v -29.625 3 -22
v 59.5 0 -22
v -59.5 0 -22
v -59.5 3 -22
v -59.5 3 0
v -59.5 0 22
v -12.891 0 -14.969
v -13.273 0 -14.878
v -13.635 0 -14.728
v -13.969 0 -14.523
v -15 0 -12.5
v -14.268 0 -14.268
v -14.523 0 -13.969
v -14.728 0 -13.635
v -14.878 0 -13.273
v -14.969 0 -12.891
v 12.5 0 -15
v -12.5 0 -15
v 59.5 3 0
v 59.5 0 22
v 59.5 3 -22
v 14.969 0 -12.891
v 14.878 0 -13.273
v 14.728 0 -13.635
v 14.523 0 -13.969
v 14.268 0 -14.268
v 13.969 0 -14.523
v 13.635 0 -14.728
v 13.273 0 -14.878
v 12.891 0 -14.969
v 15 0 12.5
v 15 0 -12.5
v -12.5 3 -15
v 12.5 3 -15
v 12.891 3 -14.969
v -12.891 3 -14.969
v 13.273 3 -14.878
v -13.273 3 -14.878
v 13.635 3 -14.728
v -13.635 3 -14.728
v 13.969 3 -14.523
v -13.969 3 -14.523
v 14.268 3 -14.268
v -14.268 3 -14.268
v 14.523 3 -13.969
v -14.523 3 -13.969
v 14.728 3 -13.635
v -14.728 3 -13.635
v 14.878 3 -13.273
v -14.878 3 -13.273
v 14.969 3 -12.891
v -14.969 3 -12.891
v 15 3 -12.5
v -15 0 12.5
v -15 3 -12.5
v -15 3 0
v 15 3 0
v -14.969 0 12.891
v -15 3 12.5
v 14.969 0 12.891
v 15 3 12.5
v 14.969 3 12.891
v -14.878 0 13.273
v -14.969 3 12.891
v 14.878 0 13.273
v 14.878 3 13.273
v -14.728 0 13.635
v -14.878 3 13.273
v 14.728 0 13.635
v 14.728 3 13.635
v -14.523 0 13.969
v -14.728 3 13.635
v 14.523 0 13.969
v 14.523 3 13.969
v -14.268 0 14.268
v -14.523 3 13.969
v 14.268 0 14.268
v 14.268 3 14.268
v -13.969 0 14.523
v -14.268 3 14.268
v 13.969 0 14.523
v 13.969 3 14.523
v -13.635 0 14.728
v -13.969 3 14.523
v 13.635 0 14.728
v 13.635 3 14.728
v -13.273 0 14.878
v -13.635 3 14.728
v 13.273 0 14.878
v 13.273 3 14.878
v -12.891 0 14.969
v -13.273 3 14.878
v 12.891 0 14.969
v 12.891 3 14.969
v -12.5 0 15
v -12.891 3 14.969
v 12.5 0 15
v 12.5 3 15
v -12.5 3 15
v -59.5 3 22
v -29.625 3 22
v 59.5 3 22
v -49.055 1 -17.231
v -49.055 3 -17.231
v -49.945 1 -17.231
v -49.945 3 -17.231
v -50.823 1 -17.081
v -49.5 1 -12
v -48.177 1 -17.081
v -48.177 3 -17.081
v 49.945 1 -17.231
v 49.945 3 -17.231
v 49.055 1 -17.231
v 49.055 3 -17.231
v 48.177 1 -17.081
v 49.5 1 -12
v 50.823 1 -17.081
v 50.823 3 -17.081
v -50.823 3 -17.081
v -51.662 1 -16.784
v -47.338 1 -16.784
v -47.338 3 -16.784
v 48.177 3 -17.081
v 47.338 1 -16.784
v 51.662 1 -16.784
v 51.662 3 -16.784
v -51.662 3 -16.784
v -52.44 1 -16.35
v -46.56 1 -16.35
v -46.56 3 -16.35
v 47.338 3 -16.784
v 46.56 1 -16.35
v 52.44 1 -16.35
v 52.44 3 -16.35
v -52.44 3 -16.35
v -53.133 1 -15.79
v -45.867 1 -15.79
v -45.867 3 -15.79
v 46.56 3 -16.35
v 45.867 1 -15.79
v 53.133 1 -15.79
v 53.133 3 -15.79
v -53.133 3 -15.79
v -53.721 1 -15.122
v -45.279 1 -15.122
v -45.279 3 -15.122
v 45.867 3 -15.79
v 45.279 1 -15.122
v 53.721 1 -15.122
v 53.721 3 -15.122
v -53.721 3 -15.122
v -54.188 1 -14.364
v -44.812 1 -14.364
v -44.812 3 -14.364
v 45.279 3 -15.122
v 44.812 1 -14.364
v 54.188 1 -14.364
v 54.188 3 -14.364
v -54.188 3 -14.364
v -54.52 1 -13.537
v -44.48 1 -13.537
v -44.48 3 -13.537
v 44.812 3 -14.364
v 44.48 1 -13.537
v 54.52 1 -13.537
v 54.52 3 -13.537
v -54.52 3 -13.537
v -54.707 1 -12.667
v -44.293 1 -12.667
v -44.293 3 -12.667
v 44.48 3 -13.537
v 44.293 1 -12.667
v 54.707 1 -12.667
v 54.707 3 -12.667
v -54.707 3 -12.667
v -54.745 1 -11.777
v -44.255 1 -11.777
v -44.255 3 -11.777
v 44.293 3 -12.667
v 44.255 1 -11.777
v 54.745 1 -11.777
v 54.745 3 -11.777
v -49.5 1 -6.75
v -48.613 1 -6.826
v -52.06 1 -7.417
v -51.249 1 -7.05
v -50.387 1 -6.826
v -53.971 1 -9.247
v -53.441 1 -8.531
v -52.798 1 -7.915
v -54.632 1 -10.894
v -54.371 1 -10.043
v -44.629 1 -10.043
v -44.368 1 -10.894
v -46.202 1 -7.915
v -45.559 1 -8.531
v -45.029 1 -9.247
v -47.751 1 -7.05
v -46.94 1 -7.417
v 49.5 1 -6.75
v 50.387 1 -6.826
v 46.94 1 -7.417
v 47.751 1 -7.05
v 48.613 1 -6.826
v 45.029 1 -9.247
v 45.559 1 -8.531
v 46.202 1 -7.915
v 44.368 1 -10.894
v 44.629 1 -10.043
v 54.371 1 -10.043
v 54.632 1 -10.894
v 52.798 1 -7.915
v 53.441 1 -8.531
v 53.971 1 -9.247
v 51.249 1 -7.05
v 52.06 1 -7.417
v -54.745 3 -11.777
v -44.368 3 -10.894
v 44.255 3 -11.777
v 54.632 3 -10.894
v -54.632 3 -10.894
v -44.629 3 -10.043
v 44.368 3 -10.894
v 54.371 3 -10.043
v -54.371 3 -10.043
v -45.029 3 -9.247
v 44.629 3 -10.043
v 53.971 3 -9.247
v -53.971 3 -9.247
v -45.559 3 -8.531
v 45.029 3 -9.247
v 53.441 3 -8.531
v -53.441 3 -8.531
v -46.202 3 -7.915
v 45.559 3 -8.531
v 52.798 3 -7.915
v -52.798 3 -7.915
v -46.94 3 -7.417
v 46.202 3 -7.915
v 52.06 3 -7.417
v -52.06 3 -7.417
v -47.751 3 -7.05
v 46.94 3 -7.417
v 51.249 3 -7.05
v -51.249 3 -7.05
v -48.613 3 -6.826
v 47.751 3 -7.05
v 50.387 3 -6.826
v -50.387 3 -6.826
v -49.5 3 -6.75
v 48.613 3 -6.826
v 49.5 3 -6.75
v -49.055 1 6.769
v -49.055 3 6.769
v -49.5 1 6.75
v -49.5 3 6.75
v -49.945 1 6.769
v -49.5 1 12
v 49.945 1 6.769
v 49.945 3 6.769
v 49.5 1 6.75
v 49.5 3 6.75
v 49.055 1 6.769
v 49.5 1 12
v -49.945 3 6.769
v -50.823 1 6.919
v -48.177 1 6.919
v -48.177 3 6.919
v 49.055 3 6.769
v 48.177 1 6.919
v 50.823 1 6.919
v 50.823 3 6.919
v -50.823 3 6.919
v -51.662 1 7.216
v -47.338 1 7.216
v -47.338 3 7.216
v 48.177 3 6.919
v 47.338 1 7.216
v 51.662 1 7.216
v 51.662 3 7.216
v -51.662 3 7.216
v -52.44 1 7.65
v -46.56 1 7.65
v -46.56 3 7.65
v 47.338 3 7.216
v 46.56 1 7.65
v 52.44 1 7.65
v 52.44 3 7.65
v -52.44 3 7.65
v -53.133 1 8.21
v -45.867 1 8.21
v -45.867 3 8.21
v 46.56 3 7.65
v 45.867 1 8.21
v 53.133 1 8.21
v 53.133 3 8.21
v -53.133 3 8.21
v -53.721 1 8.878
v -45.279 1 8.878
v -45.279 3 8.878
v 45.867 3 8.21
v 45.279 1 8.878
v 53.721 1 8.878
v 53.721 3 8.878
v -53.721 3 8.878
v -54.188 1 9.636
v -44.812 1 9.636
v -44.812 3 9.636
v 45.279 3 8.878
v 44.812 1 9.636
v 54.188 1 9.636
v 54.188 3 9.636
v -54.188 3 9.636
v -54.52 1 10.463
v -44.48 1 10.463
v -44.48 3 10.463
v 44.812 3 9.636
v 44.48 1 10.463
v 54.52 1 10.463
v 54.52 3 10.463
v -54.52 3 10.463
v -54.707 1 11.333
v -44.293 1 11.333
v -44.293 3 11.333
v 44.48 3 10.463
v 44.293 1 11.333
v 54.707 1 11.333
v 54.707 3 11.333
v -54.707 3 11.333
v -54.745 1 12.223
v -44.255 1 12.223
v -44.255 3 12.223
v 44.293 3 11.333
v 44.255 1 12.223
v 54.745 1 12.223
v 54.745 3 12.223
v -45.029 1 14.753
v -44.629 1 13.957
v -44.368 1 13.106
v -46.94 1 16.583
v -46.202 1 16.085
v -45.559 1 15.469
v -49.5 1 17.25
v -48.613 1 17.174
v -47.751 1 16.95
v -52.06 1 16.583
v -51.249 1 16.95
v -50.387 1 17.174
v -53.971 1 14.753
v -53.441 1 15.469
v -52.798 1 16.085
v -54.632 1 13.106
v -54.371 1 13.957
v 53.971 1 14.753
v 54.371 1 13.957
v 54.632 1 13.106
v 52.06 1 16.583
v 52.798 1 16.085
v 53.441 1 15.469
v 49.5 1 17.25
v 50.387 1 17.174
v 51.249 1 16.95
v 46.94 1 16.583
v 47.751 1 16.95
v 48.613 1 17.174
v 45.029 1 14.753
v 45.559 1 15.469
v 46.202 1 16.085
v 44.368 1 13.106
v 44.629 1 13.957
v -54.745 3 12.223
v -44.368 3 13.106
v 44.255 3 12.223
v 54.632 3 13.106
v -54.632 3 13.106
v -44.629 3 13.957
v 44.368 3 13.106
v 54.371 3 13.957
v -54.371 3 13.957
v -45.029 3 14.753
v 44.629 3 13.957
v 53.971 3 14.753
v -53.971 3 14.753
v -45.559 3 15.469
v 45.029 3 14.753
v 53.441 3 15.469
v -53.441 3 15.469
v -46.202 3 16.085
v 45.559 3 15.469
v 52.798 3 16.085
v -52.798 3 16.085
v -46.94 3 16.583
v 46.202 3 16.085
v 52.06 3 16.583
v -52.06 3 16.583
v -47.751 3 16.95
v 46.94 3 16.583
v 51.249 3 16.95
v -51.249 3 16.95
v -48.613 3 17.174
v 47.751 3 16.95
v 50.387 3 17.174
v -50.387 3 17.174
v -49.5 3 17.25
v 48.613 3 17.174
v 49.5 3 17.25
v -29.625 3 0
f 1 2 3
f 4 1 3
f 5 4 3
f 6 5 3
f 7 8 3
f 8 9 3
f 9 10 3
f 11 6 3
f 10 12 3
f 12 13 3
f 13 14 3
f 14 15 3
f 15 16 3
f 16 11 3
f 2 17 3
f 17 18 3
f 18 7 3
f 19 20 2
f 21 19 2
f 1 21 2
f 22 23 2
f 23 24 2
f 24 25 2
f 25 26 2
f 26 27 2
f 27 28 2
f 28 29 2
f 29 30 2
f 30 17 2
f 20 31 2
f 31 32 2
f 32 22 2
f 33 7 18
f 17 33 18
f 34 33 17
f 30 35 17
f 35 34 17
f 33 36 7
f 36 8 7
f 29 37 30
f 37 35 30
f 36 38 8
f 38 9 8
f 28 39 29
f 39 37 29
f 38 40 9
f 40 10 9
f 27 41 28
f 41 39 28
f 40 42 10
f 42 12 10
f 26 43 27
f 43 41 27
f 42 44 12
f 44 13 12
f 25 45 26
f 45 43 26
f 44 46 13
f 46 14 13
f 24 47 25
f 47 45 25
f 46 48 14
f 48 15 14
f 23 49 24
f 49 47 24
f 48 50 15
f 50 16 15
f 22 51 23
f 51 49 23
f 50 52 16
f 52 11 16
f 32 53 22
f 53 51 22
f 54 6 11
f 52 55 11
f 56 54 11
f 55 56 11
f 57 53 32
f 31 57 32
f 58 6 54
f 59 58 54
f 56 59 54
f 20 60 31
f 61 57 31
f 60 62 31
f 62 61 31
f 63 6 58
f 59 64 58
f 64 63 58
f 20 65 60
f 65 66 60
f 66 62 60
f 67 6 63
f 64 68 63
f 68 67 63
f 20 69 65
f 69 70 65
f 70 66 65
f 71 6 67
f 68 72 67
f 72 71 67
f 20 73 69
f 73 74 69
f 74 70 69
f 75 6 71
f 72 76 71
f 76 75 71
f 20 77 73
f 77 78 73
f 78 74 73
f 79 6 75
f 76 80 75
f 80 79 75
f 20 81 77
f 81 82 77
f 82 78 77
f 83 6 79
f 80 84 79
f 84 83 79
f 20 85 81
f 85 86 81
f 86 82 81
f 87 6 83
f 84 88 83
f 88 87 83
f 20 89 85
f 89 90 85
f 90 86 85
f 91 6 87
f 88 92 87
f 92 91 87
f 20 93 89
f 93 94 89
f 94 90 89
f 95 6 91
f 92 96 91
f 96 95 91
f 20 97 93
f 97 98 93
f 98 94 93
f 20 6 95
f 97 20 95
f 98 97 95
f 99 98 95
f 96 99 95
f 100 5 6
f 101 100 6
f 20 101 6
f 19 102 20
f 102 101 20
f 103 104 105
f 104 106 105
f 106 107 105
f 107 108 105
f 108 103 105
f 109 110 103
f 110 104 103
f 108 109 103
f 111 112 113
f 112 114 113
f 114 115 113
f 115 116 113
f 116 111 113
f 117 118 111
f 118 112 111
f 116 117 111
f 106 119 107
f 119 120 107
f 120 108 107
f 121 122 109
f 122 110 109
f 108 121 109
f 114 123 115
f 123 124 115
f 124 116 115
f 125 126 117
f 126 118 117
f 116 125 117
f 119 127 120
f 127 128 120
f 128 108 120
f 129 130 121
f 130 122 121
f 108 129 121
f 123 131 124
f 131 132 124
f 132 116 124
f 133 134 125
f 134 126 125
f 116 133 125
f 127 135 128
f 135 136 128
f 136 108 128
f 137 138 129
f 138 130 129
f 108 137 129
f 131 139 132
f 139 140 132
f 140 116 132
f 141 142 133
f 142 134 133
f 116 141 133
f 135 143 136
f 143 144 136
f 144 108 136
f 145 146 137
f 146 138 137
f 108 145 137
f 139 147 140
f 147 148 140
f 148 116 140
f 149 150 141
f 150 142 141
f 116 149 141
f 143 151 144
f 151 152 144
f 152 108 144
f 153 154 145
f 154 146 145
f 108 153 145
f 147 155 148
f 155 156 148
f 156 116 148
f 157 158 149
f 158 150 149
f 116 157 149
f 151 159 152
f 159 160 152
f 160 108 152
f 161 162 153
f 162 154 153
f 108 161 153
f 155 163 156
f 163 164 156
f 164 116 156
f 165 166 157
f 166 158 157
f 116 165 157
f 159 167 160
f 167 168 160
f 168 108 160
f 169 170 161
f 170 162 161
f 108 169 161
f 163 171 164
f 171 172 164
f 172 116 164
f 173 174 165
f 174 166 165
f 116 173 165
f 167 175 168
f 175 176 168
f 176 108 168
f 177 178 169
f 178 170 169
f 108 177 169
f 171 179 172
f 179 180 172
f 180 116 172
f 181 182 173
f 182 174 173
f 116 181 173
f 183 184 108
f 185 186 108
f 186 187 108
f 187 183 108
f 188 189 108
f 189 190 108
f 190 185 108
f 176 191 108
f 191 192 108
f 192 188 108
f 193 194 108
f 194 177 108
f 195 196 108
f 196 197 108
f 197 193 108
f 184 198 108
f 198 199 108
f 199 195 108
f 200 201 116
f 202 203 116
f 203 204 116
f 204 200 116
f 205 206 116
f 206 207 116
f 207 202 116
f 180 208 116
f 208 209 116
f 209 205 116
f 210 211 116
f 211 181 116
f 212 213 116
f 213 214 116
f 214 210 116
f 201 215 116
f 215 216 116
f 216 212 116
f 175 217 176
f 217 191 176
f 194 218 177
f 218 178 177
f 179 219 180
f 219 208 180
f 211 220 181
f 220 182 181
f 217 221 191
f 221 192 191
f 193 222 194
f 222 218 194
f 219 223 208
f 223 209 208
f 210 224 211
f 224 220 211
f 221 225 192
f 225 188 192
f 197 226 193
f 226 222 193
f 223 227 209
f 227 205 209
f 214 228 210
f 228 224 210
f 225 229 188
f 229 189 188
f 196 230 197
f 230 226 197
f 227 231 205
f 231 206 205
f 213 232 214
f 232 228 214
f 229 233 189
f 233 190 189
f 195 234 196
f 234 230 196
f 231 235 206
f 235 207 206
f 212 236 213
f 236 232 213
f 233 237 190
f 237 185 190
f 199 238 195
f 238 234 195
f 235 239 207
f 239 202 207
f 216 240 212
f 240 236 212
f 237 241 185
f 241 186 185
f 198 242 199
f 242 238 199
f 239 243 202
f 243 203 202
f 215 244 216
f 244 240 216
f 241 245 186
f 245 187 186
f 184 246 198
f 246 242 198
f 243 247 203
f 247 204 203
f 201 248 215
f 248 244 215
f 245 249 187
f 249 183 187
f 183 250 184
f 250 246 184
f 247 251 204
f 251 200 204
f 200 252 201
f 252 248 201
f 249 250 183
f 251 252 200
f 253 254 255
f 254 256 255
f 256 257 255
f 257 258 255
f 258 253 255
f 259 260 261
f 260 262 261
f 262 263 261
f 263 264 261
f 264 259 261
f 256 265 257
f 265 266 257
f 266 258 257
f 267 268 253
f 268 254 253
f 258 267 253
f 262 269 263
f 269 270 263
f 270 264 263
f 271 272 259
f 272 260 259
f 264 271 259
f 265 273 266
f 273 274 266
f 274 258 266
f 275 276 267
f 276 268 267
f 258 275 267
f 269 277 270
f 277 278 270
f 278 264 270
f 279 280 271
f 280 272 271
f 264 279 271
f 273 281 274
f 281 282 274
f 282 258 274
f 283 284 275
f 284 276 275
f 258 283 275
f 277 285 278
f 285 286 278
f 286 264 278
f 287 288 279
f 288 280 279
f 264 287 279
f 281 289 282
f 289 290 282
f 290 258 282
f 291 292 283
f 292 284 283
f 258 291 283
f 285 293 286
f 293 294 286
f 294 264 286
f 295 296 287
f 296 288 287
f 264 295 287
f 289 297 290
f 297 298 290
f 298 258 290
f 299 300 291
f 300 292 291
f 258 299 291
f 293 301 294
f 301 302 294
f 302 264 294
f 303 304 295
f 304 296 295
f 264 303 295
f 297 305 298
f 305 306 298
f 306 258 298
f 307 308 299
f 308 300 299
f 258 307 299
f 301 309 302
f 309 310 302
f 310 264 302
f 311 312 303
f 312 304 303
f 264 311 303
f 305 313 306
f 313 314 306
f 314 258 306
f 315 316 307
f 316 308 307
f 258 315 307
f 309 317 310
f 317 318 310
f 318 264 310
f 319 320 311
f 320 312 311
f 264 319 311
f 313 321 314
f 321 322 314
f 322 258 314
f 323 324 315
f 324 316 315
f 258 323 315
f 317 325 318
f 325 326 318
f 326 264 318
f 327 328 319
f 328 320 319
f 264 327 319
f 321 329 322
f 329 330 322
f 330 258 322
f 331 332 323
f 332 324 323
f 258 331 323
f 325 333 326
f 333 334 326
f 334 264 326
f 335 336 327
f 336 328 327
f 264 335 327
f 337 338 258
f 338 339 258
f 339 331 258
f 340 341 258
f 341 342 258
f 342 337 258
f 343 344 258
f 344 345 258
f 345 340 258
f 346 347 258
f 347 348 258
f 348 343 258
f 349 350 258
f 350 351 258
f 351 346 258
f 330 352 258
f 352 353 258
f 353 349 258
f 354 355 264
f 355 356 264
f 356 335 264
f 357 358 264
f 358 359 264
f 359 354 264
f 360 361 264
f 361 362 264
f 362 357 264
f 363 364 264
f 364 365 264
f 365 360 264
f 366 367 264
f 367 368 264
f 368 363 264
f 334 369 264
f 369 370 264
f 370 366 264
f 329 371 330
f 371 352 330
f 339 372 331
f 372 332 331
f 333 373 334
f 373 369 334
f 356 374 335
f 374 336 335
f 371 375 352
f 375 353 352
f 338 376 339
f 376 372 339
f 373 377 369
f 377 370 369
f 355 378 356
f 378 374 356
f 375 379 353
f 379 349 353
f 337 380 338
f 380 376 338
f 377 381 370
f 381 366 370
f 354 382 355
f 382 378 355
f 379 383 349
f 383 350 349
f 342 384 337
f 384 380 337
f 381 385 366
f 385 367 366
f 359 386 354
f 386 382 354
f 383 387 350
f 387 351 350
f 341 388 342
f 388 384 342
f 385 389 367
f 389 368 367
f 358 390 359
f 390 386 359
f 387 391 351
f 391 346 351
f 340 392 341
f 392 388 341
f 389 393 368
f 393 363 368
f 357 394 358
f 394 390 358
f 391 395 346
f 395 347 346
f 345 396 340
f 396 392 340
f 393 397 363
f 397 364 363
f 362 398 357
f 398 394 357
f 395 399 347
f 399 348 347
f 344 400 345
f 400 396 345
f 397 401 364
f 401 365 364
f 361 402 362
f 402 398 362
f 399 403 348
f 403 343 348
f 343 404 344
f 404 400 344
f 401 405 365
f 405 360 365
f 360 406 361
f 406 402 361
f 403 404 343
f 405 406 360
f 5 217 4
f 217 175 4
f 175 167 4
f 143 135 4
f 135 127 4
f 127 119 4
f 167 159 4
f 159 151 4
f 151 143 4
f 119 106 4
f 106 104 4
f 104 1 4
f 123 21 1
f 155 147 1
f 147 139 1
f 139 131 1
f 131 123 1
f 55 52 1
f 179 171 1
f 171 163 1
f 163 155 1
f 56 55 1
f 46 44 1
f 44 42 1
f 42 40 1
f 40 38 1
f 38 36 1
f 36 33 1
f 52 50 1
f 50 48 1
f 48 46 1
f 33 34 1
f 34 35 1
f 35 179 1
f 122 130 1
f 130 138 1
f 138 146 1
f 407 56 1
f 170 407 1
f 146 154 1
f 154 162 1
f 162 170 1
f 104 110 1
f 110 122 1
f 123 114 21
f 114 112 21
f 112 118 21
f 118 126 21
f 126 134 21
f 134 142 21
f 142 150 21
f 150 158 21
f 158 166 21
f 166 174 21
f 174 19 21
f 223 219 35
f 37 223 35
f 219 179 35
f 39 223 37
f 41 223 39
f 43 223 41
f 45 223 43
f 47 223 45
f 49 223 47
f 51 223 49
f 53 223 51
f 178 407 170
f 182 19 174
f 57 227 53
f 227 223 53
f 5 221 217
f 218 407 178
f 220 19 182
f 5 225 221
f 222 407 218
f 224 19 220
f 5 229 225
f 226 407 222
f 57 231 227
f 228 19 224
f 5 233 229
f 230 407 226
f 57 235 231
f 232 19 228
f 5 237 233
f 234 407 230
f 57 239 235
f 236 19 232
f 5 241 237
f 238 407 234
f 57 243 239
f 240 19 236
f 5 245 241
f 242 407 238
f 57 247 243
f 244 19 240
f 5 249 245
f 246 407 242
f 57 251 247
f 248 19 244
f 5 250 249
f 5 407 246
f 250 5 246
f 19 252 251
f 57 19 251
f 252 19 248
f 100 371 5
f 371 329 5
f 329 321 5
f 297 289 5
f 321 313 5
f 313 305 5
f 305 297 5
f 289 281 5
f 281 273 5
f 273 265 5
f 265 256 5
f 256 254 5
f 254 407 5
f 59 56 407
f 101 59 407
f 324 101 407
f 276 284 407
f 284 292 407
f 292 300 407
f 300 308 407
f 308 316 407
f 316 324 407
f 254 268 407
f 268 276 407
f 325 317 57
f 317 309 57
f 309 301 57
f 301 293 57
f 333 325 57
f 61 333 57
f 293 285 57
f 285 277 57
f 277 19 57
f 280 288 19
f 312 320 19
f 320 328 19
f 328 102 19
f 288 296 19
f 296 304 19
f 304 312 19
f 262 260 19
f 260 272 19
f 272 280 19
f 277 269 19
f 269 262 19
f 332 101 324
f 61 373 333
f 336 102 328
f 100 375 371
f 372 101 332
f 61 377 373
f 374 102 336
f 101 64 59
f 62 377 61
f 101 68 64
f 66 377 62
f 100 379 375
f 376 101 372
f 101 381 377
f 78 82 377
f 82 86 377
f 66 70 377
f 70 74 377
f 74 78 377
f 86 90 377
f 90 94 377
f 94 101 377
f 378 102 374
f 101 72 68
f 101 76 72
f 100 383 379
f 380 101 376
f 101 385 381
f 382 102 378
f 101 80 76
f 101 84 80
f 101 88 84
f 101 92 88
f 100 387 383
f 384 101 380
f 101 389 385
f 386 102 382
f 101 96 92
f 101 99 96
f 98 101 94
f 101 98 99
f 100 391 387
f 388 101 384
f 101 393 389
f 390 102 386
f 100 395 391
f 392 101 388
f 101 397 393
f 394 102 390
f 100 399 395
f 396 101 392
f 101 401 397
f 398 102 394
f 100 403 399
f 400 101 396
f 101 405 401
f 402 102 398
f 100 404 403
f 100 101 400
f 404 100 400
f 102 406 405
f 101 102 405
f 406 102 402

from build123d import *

# Parameters (mm, degrees)
ESBO_O1_W                 = 119
ESBO_O1_H                 = 44
EXTRUS_O1_DEPTH           = 3
ESBO_O2_R                 = 5.25
EXTRUS_O2_DEPTH           = 2
ESPELHAR2_COPY_1_SKETCH_R = 5.25
ESPELHAR2_COPY_1_DEPTH    = 2
EXTRUS_O3_DEPTH           = 3


with BuildPart() as part:
    # Esboço1 → Extrusão1 (new body)
    with BuildSketch(Plane(origin=(0, 0, 0), x_dir=(1, 0, 0), z_dir=(0, 1, 0))):
        Rectangle(ESBO_O1_W, ESBO_O1_H)
    extrude(amount=EXTRUS_O1_DEPTH)

    # Esboço2 → Extrusão2 (cut)
    with BuildSketch(Plane(origin=(0, 3, 0), x_dir=(1, 0, 0), z_dir=(0, 1, 0))):
        with Locations(Location((-49.5, 12, 0), (0, 0, 270))):
            Circle(ESBO_O2_R)
    extrus_o2 = extrude(amount=-EXTRUS_O2_DEPTH, mode=Mode.SUBTRACT)

    # Espelhar1: Extrusão2 across plane
    add(extrus_o2.mirror(Plane(origin=(0, 0, 0), x_dir=(0, 0, 1), z_dir=(1, 0, 0))), mode=Mode.SUBTRACT)

    # Espelhar2: Extrusão2 across plane
    add(extrus_o2.mirror(Plane.XY), mode=Mode.SUBTRACT)

    # Espelhar2 copy 1 sketch → Espelhar2 copy 1 (cut)
    with BuildSketch(Plane(origin=(0, 3, 0), x_dir=(-1, 0, 0), z_dir=(0, 1, 0))):
        with Locations(Location((-49.5, 12, 0), (0, 0, 270))):
            Circle(ESPELHAR2_COPY_1_SKETCH_R)
    extrude(amount=-ESPELHAR2_COPY_1_DEPTH, mode=Mode.SUBTRACT)

    # Esboço3 → Extrusão3 (cut)
    with BuildSketch(Plane(origin=(0, 3, 0), x_dir=(1, 0, 0), z_dir=(0, 1, 0))):
        with BuildLine():
            Line((-12.5, 15), (12.5, 15))
            ThreePointArc((12.5, 15), (14.267766953, 14.267766953), (15, 12.5))
            Line((15, 12.5), (15, -12.5))
            ThreePointArc((15, -12.5), (14.267766953, -14.267766953), (12.5, -15))
            Line((12.5, -15), (-12.5, -15))
            ThreePointArc((-12.5, -15), (-14.267766953, -14.267766953), (-15, -12.5))
            Line((-15, -12.5), (-15, 12.5))
            ThreePointArc((-15, 12.5), (-14.267766953, 14.267766953), (-12.5, 15))
        make_face()
    extrude(amount=-EXTRUS_O3_DEPTH, mode=Mode.SUBTRACT)


solid = part.part
